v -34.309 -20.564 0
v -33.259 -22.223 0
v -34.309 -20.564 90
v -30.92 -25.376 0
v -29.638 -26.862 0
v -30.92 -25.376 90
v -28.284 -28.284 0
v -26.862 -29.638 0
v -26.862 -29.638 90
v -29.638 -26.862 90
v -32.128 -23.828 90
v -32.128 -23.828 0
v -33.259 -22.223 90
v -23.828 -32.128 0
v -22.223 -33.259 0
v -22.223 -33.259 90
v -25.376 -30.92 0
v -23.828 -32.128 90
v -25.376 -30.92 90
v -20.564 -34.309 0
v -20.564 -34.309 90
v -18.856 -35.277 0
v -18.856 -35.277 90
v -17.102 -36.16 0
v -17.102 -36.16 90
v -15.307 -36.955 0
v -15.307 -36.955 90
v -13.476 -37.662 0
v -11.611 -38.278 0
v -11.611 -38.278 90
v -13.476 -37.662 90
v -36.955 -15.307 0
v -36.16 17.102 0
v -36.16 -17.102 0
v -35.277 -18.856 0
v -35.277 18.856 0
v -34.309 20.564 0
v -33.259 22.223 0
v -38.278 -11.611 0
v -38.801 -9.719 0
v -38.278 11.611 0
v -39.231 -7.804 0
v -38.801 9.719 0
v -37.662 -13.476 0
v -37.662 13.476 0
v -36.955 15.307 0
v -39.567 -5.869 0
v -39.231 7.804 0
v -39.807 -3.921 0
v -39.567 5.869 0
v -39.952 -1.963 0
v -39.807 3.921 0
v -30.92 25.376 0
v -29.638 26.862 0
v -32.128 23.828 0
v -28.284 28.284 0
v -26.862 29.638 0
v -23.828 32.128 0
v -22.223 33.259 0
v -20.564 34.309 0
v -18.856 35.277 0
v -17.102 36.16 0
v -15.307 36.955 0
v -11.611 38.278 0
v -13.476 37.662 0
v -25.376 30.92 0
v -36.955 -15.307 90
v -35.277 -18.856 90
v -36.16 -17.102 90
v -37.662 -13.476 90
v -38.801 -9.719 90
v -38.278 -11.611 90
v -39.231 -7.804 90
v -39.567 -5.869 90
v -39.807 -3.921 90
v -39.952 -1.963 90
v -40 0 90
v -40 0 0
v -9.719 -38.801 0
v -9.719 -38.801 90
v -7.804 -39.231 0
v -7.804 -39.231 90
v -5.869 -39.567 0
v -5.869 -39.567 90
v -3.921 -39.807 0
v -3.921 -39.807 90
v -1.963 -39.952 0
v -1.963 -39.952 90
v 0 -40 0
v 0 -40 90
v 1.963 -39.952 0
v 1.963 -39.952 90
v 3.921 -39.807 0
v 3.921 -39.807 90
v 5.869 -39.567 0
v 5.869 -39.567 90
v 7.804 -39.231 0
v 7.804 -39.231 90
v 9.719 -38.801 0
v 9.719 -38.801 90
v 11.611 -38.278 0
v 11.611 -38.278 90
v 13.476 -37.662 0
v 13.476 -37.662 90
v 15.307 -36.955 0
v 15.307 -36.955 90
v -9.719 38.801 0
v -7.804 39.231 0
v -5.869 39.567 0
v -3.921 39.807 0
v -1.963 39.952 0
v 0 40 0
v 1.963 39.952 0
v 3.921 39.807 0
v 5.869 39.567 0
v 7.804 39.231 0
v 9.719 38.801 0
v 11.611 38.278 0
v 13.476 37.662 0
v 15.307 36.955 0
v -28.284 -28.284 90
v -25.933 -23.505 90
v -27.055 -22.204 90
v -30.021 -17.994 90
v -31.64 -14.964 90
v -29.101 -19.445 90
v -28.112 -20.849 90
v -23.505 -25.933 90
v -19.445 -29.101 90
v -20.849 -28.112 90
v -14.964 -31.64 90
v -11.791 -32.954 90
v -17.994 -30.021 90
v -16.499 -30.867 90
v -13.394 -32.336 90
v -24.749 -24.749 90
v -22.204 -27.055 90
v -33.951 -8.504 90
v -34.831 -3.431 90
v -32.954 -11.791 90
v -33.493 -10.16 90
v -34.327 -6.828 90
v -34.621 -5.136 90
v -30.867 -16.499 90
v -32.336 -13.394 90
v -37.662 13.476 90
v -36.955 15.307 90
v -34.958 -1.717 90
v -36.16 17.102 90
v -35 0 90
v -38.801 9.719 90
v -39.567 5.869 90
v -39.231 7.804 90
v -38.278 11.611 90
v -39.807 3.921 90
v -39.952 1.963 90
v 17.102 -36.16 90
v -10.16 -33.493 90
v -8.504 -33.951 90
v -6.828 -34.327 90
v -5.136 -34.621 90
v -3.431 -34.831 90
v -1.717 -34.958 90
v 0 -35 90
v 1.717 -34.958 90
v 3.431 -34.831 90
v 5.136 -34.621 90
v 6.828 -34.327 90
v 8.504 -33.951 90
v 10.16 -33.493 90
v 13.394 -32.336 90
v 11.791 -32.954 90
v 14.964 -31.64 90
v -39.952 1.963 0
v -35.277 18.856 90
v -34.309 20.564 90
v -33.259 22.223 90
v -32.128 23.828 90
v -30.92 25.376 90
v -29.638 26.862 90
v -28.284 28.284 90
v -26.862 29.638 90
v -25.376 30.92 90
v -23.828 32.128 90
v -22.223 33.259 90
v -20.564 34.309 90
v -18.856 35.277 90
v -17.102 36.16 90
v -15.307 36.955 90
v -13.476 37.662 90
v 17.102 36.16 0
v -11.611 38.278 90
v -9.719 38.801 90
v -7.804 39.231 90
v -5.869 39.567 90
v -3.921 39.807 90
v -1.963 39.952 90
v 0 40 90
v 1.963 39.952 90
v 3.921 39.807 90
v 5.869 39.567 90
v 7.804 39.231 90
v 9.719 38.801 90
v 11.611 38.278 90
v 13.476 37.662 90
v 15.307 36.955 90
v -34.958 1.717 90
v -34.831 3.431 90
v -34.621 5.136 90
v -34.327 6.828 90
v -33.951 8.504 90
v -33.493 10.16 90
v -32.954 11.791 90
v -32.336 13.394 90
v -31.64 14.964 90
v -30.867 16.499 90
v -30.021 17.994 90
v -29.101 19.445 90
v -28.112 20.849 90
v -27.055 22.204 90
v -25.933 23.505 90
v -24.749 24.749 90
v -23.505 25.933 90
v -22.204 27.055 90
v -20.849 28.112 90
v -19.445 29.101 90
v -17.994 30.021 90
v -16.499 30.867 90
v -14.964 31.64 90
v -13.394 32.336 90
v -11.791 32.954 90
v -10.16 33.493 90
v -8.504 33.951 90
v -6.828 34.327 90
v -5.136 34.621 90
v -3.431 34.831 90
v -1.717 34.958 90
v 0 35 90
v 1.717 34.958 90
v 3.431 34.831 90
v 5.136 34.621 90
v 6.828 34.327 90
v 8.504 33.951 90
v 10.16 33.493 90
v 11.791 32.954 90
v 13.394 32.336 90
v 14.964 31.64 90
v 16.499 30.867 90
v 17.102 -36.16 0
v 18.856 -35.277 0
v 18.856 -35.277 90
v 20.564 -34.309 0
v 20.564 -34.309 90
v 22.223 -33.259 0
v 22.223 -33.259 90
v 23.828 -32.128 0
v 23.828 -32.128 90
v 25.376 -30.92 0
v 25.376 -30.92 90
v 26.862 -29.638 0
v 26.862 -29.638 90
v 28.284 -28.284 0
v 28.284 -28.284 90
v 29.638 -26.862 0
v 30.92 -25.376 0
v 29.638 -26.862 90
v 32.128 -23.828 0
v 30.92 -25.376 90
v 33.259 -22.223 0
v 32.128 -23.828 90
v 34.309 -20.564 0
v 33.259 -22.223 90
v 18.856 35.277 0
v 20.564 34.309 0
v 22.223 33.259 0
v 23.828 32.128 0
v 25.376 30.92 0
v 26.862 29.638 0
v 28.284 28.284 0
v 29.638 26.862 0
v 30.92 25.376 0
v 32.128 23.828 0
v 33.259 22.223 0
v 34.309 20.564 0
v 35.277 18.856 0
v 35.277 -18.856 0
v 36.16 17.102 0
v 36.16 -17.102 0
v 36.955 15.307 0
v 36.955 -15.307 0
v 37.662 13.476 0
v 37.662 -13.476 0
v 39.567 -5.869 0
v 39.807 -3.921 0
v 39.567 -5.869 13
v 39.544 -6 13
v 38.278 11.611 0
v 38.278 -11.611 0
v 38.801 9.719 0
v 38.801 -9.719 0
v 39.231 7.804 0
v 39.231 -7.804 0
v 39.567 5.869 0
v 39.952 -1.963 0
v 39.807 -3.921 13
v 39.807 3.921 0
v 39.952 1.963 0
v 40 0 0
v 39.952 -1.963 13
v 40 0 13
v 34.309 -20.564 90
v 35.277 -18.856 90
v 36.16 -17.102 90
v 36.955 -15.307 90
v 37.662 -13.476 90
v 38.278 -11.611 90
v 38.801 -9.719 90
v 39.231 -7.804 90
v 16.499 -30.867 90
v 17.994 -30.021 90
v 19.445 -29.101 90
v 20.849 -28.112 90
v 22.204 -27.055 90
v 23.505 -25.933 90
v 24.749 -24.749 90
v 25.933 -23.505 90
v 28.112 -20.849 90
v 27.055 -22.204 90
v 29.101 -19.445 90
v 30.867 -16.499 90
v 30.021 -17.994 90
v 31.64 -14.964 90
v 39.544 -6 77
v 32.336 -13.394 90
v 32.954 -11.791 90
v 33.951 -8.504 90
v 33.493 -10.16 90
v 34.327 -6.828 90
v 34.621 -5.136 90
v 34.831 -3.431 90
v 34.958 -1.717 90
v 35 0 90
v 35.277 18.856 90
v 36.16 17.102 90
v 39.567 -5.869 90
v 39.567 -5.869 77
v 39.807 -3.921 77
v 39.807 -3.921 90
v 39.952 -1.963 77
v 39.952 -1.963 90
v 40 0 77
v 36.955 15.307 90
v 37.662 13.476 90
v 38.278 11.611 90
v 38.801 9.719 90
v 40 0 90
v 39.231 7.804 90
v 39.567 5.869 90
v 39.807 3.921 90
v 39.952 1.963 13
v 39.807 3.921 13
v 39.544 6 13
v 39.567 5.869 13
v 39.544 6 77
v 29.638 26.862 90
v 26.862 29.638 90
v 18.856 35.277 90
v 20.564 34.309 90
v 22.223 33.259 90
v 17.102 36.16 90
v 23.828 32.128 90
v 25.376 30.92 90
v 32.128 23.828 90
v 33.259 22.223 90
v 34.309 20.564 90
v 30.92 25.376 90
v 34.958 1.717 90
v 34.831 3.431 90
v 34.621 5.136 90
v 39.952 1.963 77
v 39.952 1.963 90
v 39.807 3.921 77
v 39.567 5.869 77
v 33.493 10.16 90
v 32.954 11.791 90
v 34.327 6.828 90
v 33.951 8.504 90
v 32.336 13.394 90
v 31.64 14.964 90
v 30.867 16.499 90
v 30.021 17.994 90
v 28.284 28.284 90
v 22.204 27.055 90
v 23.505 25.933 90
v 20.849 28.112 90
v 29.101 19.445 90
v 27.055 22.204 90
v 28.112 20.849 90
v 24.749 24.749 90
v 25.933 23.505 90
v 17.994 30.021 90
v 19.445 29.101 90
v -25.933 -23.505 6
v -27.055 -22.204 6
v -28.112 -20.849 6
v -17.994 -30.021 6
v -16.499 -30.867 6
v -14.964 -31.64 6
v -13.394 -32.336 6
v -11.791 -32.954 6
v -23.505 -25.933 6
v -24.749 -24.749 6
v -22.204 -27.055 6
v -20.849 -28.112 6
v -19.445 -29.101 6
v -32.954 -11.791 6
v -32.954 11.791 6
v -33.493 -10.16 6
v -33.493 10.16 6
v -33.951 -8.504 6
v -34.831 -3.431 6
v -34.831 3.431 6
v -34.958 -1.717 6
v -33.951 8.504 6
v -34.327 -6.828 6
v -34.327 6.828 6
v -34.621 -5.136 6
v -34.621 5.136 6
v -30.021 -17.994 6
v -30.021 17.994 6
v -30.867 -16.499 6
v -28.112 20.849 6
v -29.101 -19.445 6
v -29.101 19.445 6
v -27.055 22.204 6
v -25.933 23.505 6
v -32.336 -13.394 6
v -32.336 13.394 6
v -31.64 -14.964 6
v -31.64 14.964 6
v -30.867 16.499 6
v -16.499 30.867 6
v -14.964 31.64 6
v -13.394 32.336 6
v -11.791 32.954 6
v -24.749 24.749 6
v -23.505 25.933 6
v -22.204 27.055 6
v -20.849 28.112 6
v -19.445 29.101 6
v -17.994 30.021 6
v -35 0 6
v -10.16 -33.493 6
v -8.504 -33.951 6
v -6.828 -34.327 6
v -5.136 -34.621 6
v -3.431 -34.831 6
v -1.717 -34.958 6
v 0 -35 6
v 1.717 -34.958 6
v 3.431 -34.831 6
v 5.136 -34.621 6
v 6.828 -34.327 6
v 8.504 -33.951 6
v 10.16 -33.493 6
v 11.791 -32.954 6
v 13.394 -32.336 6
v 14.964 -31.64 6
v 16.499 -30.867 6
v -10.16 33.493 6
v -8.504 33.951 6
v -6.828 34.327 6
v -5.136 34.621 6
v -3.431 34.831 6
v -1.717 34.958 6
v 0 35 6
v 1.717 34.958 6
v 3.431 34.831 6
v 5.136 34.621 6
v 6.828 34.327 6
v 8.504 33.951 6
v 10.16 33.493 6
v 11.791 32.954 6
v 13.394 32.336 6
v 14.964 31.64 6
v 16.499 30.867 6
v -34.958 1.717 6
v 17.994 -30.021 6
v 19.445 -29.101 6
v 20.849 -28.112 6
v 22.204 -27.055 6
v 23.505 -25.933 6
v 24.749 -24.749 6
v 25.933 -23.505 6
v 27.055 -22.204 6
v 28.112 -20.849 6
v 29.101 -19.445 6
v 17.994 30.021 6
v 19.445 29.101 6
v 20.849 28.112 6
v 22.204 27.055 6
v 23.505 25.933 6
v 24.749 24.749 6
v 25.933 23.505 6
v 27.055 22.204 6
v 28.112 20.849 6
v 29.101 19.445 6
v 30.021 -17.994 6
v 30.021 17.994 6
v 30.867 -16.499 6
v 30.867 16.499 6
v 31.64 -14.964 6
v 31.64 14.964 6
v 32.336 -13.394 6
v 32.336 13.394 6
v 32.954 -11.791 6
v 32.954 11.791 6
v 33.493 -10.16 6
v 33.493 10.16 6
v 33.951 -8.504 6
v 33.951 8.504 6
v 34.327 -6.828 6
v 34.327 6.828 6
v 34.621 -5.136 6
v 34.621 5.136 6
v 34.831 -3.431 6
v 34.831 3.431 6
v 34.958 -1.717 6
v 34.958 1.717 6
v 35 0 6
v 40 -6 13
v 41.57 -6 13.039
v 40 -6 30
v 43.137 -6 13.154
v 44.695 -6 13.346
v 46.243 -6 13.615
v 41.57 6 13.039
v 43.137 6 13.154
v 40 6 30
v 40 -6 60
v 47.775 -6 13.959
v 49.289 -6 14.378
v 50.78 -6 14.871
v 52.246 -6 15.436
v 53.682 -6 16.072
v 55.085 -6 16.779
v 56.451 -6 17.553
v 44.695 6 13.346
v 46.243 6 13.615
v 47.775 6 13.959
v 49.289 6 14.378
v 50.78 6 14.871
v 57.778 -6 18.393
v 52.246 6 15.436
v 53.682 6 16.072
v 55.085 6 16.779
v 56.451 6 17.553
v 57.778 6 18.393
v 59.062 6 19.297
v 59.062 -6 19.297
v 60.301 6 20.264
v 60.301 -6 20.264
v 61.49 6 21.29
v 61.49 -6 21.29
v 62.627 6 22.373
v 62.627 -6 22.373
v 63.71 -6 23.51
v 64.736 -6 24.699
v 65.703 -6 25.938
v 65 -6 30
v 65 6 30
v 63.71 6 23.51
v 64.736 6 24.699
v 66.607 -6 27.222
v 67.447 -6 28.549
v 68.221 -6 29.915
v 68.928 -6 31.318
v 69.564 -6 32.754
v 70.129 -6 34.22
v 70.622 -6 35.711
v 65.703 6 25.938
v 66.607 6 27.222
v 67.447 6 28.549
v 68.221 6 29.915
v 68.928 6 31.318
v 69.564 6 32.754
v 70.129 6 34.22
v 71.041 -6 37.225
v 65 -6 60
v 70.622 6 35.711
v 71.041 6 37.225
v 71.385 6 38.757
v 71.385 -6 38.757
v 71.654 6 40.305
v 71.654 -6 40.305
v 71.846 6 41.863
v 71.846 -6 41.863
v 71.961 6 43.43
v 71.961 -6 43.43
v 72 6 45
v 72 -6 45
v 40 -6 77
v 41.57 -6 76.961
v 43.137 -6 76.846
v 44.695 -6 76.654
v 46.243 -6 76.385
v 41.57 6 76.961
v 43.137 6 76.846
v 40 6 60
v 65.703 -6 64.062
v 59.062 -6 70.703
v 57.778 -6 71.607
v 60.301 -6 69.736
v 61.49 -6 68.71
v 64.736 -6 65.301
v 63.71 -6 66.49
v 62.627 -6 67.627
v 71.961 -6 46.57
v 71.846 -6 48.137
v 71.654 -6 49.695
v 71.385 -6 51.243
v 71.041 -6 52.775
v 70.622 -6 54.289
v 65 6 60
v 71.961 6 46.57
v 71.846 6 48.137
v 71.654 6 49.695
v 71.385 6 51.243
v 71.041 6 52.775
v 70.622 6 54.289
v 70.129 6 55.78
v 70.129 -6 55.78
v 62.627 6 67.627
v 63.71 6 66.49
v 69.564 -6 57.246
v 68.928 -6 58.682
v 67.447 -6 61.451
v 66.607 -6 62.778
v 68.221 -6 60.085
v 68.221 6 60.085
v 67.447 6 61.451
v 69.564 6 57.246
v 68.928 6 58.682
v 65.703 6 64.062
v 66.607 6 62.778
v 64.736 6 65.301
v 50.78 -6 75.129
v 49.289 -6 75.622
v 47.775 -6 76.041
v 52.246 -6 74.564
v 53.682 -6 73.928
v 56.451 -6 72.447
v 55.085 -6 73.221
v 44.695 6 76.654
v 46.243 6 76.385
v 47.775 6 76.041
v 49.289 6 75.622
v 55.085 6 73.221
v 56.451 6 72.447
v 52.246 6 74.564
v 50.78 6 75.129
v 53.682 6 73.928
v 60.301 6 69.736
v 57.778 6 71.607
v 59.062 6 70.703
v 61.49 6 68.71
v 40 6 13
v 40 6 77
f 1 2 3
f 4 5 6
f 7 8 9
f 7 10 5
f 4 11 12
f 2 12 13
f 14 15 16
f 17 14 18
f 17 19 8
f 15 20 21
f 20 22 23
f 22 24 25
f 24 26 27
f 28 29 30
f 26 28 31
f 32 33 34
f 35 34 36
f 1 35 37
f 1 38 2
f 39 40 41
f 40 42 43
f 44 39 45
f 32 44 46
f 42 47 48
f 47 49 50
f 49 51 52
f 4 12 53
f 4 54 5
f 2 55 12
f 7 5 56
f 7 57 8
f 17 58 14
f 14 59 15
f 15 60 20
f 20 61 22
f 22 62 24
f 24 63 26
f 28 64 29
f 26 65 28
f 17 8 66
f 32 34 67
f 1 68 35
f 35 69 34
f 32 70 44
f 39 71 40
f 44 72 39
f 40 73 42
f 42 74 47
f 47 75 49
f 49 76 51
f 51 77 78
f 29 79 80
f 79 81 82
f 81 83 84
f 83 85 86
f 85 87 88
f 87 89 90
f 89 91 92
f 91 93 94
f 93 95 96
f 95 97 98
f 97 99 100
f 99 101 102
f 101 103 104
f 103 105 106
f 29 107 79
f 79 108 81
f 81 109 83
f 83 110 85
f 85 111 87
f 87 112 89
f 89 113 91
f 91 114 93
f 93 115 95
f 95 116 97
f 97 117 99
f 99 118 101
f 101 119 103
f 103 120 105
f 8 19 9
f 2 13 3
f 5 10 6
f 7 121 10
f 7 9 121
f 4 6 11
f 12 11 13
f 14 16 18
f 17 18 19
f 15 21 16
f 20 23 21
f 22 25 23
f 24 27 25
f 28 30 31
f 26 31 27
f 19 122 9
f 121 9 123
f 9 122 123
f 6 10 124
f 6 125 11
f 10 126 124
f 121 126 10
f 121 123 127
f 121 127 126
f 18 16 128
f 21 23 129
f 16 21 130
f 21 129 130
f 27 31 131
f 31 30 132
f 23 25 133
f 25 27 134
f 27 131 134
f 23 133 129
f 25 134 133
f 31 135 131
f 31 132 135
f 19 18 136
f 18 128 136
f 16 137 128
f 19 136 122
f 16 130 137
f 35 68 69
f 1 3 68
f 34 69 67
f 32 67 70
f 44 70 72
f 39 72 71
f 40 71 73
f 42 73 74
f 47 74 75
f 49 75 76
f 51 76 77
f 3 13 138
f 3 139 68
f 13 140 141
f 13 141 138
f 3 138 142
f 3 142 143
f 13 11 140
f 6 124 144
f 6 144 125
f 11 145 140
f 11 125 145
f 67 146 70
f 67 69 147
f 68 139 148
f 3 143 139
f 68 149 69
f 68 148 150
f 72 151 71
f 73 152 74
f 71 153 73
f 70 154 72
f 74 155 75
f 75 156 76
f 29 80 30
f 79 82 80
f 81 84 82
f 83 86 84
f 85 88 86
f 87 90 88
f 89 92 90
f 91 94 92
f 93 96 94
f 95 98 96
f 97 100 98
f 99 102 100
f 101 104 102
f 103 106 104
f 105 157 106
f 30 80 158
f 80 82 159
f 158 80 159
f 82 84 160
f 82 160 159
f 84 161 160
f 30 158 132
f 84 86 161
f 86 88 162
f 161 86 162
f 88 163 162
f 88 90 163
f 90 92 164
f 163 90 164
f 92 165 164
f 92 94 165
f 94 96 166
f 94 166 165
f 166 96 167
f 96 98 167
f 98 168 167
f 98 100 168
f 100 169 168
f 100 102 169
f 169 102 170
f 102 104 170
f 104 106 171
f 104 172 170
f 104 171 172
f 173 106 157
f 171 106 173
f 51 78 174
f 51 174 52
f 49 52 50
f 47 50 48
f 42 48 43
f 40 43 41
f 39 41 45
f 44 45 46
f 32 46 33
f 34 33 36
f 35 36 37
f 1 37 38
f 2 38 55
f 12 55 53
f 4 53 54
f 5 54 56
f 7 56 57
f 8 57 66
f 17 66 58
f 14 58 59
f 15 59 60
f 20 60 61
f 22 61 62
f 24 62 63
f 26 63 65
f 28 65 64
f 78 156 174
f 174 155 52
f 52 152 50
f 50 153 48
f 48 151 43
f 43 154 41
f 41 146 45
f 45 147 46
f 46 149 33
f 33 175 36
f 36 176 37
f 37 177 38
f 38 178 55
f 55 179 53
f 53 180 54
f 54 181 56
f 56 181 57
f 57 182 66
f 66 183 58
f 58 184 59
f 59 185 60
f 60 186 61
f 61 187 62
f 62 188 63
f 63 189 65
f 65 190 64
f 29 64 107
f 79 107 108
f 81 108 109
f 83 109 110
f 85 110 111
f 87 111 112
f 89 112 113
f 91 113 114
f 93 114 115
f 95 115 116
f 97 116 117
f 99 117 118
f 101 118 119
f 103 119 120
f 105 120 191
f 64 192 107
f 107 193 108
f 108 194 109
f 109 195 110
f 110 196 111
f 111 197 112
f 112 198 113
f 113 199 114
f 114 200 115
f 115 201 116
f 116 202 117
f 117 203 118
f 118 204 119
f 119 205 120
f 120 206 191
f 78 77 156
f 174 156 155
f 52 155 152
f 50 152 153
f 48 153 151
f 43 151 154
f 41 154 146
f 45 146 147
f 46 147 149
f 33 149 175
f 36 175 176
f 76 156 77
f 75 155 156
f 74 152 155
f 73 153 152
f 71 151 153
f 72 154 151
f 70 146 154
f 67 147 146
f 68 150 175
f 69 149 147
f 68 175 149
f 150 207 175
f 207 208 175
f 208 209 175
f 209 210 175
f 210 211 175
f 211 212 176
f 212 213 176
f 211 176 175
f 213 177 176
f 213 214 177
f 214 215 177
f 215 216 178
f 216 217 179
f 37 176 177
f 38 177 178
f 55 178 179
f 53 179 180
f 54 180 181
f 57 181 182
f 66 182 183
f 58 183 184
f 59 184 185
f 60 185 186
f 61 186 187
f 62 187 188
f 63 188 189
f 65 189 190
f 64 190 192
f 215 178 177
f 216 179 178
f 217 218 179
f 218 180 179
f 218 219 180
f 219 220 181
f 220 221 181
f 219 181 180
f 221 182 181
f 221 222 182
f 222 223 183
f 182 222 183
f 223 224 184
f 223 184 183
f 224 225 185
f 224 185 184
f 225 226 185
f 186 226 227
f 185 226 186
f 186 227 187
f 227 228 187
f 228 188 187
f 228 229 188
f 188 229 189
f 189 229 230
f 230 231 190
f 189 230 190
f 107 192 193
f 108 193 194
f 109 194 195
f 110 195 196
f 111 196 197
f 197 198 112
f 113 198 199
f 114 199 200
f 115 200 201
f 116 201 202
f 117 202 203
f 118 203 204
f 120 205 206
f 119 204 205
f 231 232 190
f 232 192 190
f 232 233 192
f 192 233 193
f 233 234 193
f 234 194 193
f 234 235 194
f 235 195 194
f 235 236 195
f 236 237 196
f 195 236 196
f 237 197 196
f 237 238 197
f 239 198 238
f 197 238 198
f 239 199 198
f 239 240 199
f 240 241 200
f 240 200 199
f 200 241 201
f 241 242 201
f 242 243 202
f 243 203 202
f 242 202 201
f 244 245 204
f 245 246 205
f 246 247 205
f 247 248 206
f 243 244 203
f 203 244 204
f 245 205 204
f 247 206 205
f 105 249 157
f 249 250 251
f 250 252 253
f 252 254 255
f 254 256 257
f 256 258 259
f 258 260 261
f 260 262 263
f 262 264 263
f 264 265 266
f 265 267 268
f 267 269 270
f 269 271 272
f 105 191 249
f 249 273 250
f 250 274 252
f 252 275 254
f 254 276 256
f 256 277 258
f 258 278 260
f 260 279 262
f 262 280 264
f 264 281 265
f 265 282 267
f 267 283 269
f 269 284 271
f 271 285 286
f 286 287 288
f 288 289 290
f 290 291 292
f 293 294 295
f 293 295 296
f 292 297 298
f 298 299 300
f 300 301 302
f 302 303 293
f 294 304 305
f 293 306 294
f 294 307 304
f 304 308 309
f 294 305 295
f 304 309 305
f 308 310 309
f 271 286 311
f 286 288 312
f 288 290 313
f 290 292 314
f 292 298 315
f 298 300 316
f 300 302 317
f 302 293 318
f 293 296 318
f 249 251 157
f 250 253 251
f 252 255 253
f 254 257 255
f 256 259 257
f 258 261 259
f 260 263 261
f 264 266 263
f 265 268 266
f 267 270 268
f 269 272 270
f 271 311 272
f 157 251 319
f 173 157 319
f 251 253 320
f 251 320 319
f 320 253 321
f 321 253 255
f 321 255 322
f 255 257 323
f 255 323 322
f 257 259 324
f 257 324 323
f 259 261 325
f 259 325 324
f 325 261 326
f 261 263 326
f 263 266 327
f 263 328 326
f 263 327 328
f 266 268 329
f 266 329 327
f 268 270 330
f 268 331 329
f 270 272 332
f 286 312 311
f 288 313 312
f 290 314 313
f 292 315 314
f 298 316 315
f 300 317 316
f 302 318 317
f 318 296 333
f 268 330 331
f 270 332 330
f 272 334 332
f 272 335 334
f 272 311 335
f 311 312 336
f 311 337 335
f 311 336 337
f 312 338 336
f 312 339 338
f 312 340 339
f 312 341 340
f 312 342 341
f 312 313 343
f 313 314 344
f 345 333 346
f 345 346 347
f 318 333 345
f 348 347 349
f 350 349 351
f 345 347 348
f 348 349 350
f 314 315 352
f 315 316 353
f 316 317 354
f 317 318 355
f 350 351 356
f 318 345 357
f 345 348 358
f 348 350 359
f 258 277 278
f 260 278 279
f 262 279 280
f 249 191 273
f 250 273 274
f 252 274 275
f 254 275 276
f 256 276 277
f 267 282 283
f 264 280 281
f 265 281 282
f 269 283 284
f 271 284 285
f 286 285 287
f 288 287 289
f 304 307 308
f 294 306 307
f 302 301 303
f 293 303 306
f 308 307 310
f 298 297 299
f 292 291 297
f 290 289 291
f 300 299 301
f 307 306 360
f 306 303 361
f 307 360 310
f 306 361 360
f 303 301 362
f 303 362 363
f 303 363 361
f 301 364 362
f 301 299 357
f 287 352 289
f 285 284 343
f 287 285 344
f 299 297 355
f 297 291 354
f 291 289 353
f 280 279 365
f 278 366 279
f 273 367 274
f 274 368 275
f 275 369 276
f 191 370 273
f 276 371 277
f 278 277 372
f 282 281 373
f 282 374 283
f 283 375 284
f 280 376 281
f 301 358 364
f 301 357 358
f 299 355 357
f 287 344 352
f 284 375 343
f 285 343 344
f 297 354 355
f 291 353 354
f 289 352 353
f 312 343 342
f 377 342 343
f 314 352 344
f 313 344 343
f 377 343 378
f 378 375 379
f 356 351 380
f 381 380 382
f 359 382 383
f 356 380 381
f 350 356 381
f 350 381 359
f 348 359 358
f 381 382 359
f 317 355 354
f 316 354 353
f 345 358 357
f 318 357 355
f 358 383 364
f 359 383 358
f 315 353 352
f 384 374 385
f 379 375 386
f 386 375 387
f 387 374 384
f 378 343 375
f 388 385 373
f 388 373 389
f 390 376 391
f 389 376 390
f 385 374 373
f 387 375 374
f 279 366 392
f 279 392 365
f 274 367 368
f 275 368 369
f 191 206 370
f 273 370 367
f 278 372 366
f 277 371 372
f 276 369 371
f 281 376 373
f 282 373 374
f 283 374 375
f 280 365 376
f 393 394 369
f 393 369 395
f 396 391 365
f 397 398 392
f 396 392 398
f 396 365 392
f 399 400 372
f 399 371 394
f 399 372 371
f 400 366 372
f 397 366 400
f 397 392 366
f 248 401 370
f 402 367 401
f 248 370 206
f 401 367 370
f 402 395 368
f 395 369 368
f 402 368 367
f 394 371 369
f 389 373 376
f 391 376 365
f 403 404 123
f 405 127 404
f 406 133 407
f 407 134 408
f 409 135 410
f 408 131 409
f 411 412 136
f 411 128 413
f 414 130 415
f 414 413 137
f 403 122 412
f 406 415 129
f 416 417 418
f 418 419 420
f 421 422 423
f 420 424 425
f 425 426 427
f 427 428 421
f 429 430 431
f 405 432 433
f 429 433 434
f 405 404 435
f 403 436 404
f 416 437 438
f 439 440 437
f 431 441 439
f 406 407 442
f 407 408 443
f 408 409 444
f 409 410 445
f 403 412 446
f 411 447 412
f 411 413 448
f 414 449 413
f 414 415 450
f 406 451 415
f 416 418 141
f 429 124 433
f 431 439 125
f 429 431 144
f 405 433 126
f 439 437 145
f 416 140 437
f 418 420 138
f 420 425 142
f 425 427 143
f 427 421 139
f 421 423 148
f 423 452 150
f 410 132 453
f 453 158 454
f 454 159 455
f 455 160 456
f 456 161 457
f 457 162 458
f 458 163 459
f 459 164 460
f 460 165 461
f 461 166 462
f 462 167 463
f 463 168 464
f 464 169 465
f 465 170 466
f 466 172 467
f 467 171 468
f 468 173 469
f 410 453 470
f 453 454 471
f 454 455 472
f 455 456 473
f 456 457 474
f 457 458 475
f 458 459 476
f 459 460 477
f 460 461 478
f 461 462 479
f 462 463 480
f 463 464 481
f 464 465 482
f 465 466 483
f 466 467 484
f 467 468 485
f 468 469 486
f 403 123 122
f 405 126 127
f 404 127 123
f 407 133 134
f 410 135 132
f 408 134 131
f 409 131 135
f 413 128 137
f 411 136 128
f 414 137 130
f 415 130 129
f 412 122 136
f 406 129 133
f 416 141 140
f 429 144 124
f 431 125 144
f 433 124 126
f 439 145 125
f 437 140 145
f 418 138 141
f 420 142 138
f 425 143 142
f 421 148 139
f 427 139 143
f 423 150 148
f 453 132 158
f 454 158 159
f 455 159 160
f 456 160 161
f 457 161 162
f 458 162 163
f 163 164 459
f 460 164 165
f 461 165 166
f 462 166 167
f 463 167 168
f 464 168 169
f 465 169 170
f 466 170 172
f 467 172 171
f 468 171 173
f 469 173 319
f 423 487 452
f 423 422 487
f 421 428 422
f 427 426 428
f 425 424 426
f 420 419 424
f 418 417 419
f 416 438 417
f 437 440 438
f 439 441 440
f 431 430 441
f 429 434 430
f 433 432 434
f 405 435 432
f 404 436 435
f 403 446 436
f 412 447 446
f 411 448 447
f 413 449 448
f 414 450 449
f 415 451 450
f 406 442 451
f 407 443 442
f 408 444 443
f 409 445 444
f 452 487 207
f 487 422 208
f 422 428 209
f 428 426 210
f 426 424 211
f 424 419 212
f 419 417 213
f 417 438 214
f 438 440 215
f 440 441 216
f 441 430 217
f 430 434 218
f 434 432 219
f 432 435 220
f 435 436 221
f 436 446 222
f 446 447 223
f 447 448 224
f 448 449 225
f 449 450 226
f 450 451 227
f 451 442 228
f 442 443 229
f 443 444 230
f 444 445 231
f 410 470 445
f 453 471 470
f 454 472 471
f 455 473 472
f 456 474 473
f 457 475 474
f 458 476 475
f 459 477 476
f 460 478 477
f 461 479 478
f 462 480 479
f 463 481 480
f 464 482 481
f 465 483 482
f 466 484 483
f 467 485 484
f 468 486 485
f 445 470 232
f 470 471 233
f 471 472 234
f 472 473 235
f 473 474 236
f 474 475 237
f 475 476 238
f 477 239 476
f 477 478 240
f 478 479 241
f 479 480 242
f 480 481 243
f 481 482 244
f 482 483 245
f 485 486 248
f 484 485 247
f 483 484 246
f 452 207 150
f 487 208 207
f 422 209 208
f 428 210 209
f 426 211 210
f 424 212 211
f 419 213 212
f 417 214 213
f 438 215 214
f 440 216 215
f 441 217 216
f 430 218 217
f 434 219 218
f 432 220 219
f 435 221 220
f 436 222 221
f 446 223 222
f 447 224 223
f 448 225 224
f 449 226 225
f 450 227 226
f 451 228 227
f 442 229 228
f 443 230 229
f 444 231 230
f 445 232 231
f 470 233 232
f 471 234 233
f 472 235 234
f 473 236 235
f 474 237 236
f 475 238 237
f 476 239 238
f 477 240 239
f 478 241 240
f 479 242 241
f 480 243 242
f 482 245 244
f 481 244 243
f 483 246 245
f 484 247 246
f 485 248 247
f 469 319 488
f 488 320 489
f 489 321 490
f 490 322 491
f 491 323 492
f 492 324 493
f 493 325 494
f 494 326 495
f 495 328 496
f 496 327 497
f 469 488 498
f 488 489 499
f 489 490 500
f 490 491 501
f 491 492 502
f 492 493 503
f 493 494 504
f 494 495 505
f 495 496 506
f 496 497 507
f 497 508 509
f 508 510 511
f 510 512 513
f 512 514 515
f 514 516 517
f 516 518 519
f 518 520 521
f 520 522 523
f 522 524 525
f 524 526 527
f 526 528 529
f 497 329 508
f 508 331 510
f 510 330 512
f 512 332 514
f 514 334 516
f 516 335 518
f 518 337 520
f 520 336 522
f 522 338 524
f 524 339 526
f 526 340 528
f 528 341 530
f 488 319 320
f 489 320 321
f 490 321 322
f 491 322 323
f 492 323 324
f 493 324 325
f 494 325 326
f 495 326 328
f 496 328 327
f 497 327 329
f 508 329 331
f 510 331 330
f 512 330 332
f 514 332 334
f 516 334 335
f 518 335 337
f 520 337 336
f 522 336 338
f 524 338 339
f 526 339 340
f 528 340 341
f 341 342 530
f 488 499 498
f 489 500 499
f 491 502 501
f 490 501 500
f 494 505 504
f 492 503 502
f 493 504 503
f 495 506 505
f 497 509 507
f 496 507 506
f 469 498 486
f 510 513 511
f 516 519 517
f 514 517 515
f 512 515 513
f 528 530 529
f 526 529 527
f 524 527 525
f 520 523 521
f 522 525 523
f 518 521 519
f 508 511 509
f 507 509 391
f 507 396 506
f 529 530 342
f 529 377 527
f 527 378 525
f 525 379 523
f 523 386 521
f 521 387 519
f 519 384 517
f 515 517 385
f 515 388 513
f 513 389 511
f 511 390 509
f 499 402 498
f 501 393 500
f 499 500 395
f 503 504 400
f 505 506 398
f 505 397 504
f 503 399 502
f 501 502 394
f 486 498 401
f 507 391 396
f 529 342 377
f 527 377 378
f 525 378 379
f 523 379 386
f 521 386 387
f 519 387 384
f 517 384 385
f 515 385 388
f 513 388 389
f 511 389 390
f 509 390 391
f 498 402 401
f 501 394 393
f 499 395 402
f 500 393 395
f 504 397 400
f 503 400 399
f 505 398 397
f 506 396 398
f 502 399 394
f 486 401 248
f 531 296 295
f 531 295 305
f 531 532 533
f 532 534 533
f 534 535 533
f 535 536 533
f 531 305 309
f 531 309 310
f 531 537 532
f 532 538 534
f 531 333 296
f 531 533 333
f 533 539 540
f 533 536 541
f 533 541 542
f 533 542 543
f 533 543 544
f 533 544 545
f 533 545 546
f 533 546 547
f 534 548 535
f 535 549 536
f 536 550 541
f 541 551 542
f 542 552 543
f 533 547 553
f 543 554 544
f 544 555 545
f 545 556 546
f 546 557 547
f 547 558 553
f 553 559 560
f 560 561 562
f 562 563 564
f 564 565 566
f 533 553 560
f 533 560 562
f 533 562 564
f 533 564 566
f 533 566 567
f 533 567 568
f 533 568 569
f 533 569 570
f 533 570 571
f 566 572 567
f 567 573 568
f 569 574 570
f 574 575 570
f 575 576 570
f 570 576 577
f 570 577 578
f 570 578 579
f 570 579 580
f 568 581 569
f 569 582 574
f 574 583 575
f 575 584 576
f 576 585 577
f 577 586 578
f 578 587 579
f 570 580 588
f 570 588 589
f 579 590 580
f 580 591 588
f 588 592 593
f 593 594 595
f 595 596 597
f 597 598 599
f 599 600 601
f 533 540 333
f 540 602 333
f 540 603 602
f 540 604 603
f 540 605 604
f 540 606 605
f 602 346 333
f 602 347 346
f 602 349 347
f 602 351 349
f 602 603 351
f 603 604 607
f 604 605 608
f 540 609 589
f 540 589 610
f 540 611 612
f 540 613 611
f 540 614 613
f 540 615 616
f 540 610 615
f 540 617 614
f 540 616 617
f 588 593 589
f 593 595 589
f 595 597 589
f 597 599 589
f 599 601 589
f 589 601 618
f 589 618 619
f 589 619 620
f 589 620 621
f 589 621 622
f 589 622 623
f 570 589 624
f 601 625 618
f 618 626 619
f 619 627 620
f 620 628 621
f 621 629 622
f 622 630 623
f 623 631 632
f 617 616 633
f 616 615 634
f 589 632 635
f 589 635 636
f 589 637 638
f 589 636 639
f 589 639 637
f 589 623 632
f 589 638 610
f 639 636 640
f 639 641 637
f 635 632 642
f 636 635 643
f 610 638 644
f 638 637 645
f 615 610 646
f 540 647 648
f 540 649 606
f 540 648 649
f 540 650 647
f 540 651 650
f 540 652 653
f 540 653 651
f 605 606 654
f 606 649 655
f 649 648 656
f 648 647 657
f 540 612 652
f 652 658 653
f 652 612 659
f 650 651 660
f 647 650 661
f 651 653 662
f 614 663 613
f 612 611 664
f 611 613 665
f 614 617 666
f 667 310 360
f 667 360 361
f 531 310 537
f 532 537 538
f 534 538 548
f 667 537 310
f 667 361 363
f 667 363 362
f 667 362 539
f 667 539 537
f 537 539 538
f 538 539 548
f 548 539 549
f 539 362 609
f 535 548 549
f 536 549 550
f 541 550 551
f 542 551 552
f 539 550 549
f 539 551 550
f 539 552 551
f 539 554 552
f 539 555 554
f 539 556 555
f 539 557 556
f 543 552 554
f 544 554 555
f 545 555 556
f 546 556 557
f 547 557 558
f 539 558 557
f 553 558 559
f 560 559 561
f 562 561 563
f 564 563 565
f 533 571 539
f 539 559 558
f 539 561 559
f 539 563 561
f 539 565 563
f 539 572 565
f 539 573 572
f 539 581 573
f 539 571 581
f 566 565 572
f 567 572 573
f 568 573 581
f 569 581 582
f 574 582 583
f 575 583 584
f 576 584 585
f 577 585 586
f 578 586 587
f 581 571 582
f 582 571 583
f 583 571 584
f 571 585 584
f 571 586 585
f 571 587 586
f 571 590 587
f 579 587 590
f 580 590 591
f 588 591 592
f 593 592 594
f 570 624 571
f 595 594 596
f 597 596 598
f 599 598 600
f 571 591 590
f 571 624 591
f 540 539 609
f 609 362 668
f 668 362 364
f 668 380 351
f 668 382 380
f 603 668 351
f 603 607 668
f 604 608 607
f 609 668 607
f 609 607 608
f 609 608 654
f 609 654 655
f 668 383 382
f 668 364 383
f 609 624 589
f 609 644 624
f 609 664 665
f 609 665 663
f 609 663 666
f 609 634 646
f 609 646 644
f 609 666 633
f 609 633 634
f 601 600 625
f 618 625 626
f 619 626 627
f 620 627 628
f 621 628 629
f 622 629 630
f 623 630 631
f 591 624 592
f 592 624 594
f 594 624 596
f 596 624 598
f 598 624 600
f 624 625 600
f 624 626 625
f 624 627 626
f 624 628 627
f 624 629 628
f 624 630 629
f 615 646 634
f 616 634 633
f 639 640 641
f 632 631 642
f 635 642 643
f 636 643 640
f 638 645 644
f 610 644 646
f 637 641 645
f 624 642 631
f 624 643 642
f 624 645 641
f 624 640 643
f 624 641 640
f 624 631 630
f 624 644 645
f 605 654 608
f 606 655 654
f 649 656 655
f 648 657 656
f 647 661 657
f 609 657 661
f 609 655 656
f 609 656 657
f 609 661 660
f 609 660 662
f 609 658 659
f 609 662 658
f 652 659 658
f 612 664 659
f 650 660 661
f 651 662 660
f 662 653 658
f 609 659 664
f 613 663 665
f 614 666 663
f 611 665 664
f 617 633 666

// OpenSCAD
$fn = 128;

outer_d = 80;
inner_d = 70;
mug_h = 90;
bottom_thickness = 6;

handle_thickness = 12;
handle_center_z = mug_h / 2;
handle_outer_radius = 32;
handle_opening_width = 25;
handle_opening_height = 30;
handle_join_x = 37;             // 本体外周に食い込ませて接続
handle_straight_x = outer_d / 2;

module mug_body() {
    difference() {
        cylinder(h = mug_h, d = outer_d);
        translate([0, 0, bottom_thickness])
            cylinder(h = mug_h - bottom_thickness + 1, d = inner_d);
    }
}

module handle_profile() {
    difference() {
        union() {
            // 本体側の直線部分
            translate([handle_join_x, handle_center_z - handle_outer_radius])
                square([
                    handle_straight_x - handle_join_x,
                    2 * handle_outer_radius
                ]);

            // +X 側だけに広がる半円
            intersection() {
                translate([handle_straight_x, handle_center_z])
                    circle(r = handle_outer_radius);
                translate([handle_straight_x,
                           handle_center_z - handle_outer_radius])
                    square([handle_outer_radius, 2 * handle_outer_radius]);
            }
        }

        // 高さ 30 mm × 幅 25 mm の指を入れる空間
        translate([handle_straight_x,
                   handle_center_z - handle_opening_height / 2])
            square([handle_opening_width, handle_opening_height]);
    }
}

union() {
    mug_body();

    translate([0, handle_thickness / 2, 0])
        rotate([90, 0, 0])
            linear_extrude(height = handle_thickness)
                handle_profile();
}
